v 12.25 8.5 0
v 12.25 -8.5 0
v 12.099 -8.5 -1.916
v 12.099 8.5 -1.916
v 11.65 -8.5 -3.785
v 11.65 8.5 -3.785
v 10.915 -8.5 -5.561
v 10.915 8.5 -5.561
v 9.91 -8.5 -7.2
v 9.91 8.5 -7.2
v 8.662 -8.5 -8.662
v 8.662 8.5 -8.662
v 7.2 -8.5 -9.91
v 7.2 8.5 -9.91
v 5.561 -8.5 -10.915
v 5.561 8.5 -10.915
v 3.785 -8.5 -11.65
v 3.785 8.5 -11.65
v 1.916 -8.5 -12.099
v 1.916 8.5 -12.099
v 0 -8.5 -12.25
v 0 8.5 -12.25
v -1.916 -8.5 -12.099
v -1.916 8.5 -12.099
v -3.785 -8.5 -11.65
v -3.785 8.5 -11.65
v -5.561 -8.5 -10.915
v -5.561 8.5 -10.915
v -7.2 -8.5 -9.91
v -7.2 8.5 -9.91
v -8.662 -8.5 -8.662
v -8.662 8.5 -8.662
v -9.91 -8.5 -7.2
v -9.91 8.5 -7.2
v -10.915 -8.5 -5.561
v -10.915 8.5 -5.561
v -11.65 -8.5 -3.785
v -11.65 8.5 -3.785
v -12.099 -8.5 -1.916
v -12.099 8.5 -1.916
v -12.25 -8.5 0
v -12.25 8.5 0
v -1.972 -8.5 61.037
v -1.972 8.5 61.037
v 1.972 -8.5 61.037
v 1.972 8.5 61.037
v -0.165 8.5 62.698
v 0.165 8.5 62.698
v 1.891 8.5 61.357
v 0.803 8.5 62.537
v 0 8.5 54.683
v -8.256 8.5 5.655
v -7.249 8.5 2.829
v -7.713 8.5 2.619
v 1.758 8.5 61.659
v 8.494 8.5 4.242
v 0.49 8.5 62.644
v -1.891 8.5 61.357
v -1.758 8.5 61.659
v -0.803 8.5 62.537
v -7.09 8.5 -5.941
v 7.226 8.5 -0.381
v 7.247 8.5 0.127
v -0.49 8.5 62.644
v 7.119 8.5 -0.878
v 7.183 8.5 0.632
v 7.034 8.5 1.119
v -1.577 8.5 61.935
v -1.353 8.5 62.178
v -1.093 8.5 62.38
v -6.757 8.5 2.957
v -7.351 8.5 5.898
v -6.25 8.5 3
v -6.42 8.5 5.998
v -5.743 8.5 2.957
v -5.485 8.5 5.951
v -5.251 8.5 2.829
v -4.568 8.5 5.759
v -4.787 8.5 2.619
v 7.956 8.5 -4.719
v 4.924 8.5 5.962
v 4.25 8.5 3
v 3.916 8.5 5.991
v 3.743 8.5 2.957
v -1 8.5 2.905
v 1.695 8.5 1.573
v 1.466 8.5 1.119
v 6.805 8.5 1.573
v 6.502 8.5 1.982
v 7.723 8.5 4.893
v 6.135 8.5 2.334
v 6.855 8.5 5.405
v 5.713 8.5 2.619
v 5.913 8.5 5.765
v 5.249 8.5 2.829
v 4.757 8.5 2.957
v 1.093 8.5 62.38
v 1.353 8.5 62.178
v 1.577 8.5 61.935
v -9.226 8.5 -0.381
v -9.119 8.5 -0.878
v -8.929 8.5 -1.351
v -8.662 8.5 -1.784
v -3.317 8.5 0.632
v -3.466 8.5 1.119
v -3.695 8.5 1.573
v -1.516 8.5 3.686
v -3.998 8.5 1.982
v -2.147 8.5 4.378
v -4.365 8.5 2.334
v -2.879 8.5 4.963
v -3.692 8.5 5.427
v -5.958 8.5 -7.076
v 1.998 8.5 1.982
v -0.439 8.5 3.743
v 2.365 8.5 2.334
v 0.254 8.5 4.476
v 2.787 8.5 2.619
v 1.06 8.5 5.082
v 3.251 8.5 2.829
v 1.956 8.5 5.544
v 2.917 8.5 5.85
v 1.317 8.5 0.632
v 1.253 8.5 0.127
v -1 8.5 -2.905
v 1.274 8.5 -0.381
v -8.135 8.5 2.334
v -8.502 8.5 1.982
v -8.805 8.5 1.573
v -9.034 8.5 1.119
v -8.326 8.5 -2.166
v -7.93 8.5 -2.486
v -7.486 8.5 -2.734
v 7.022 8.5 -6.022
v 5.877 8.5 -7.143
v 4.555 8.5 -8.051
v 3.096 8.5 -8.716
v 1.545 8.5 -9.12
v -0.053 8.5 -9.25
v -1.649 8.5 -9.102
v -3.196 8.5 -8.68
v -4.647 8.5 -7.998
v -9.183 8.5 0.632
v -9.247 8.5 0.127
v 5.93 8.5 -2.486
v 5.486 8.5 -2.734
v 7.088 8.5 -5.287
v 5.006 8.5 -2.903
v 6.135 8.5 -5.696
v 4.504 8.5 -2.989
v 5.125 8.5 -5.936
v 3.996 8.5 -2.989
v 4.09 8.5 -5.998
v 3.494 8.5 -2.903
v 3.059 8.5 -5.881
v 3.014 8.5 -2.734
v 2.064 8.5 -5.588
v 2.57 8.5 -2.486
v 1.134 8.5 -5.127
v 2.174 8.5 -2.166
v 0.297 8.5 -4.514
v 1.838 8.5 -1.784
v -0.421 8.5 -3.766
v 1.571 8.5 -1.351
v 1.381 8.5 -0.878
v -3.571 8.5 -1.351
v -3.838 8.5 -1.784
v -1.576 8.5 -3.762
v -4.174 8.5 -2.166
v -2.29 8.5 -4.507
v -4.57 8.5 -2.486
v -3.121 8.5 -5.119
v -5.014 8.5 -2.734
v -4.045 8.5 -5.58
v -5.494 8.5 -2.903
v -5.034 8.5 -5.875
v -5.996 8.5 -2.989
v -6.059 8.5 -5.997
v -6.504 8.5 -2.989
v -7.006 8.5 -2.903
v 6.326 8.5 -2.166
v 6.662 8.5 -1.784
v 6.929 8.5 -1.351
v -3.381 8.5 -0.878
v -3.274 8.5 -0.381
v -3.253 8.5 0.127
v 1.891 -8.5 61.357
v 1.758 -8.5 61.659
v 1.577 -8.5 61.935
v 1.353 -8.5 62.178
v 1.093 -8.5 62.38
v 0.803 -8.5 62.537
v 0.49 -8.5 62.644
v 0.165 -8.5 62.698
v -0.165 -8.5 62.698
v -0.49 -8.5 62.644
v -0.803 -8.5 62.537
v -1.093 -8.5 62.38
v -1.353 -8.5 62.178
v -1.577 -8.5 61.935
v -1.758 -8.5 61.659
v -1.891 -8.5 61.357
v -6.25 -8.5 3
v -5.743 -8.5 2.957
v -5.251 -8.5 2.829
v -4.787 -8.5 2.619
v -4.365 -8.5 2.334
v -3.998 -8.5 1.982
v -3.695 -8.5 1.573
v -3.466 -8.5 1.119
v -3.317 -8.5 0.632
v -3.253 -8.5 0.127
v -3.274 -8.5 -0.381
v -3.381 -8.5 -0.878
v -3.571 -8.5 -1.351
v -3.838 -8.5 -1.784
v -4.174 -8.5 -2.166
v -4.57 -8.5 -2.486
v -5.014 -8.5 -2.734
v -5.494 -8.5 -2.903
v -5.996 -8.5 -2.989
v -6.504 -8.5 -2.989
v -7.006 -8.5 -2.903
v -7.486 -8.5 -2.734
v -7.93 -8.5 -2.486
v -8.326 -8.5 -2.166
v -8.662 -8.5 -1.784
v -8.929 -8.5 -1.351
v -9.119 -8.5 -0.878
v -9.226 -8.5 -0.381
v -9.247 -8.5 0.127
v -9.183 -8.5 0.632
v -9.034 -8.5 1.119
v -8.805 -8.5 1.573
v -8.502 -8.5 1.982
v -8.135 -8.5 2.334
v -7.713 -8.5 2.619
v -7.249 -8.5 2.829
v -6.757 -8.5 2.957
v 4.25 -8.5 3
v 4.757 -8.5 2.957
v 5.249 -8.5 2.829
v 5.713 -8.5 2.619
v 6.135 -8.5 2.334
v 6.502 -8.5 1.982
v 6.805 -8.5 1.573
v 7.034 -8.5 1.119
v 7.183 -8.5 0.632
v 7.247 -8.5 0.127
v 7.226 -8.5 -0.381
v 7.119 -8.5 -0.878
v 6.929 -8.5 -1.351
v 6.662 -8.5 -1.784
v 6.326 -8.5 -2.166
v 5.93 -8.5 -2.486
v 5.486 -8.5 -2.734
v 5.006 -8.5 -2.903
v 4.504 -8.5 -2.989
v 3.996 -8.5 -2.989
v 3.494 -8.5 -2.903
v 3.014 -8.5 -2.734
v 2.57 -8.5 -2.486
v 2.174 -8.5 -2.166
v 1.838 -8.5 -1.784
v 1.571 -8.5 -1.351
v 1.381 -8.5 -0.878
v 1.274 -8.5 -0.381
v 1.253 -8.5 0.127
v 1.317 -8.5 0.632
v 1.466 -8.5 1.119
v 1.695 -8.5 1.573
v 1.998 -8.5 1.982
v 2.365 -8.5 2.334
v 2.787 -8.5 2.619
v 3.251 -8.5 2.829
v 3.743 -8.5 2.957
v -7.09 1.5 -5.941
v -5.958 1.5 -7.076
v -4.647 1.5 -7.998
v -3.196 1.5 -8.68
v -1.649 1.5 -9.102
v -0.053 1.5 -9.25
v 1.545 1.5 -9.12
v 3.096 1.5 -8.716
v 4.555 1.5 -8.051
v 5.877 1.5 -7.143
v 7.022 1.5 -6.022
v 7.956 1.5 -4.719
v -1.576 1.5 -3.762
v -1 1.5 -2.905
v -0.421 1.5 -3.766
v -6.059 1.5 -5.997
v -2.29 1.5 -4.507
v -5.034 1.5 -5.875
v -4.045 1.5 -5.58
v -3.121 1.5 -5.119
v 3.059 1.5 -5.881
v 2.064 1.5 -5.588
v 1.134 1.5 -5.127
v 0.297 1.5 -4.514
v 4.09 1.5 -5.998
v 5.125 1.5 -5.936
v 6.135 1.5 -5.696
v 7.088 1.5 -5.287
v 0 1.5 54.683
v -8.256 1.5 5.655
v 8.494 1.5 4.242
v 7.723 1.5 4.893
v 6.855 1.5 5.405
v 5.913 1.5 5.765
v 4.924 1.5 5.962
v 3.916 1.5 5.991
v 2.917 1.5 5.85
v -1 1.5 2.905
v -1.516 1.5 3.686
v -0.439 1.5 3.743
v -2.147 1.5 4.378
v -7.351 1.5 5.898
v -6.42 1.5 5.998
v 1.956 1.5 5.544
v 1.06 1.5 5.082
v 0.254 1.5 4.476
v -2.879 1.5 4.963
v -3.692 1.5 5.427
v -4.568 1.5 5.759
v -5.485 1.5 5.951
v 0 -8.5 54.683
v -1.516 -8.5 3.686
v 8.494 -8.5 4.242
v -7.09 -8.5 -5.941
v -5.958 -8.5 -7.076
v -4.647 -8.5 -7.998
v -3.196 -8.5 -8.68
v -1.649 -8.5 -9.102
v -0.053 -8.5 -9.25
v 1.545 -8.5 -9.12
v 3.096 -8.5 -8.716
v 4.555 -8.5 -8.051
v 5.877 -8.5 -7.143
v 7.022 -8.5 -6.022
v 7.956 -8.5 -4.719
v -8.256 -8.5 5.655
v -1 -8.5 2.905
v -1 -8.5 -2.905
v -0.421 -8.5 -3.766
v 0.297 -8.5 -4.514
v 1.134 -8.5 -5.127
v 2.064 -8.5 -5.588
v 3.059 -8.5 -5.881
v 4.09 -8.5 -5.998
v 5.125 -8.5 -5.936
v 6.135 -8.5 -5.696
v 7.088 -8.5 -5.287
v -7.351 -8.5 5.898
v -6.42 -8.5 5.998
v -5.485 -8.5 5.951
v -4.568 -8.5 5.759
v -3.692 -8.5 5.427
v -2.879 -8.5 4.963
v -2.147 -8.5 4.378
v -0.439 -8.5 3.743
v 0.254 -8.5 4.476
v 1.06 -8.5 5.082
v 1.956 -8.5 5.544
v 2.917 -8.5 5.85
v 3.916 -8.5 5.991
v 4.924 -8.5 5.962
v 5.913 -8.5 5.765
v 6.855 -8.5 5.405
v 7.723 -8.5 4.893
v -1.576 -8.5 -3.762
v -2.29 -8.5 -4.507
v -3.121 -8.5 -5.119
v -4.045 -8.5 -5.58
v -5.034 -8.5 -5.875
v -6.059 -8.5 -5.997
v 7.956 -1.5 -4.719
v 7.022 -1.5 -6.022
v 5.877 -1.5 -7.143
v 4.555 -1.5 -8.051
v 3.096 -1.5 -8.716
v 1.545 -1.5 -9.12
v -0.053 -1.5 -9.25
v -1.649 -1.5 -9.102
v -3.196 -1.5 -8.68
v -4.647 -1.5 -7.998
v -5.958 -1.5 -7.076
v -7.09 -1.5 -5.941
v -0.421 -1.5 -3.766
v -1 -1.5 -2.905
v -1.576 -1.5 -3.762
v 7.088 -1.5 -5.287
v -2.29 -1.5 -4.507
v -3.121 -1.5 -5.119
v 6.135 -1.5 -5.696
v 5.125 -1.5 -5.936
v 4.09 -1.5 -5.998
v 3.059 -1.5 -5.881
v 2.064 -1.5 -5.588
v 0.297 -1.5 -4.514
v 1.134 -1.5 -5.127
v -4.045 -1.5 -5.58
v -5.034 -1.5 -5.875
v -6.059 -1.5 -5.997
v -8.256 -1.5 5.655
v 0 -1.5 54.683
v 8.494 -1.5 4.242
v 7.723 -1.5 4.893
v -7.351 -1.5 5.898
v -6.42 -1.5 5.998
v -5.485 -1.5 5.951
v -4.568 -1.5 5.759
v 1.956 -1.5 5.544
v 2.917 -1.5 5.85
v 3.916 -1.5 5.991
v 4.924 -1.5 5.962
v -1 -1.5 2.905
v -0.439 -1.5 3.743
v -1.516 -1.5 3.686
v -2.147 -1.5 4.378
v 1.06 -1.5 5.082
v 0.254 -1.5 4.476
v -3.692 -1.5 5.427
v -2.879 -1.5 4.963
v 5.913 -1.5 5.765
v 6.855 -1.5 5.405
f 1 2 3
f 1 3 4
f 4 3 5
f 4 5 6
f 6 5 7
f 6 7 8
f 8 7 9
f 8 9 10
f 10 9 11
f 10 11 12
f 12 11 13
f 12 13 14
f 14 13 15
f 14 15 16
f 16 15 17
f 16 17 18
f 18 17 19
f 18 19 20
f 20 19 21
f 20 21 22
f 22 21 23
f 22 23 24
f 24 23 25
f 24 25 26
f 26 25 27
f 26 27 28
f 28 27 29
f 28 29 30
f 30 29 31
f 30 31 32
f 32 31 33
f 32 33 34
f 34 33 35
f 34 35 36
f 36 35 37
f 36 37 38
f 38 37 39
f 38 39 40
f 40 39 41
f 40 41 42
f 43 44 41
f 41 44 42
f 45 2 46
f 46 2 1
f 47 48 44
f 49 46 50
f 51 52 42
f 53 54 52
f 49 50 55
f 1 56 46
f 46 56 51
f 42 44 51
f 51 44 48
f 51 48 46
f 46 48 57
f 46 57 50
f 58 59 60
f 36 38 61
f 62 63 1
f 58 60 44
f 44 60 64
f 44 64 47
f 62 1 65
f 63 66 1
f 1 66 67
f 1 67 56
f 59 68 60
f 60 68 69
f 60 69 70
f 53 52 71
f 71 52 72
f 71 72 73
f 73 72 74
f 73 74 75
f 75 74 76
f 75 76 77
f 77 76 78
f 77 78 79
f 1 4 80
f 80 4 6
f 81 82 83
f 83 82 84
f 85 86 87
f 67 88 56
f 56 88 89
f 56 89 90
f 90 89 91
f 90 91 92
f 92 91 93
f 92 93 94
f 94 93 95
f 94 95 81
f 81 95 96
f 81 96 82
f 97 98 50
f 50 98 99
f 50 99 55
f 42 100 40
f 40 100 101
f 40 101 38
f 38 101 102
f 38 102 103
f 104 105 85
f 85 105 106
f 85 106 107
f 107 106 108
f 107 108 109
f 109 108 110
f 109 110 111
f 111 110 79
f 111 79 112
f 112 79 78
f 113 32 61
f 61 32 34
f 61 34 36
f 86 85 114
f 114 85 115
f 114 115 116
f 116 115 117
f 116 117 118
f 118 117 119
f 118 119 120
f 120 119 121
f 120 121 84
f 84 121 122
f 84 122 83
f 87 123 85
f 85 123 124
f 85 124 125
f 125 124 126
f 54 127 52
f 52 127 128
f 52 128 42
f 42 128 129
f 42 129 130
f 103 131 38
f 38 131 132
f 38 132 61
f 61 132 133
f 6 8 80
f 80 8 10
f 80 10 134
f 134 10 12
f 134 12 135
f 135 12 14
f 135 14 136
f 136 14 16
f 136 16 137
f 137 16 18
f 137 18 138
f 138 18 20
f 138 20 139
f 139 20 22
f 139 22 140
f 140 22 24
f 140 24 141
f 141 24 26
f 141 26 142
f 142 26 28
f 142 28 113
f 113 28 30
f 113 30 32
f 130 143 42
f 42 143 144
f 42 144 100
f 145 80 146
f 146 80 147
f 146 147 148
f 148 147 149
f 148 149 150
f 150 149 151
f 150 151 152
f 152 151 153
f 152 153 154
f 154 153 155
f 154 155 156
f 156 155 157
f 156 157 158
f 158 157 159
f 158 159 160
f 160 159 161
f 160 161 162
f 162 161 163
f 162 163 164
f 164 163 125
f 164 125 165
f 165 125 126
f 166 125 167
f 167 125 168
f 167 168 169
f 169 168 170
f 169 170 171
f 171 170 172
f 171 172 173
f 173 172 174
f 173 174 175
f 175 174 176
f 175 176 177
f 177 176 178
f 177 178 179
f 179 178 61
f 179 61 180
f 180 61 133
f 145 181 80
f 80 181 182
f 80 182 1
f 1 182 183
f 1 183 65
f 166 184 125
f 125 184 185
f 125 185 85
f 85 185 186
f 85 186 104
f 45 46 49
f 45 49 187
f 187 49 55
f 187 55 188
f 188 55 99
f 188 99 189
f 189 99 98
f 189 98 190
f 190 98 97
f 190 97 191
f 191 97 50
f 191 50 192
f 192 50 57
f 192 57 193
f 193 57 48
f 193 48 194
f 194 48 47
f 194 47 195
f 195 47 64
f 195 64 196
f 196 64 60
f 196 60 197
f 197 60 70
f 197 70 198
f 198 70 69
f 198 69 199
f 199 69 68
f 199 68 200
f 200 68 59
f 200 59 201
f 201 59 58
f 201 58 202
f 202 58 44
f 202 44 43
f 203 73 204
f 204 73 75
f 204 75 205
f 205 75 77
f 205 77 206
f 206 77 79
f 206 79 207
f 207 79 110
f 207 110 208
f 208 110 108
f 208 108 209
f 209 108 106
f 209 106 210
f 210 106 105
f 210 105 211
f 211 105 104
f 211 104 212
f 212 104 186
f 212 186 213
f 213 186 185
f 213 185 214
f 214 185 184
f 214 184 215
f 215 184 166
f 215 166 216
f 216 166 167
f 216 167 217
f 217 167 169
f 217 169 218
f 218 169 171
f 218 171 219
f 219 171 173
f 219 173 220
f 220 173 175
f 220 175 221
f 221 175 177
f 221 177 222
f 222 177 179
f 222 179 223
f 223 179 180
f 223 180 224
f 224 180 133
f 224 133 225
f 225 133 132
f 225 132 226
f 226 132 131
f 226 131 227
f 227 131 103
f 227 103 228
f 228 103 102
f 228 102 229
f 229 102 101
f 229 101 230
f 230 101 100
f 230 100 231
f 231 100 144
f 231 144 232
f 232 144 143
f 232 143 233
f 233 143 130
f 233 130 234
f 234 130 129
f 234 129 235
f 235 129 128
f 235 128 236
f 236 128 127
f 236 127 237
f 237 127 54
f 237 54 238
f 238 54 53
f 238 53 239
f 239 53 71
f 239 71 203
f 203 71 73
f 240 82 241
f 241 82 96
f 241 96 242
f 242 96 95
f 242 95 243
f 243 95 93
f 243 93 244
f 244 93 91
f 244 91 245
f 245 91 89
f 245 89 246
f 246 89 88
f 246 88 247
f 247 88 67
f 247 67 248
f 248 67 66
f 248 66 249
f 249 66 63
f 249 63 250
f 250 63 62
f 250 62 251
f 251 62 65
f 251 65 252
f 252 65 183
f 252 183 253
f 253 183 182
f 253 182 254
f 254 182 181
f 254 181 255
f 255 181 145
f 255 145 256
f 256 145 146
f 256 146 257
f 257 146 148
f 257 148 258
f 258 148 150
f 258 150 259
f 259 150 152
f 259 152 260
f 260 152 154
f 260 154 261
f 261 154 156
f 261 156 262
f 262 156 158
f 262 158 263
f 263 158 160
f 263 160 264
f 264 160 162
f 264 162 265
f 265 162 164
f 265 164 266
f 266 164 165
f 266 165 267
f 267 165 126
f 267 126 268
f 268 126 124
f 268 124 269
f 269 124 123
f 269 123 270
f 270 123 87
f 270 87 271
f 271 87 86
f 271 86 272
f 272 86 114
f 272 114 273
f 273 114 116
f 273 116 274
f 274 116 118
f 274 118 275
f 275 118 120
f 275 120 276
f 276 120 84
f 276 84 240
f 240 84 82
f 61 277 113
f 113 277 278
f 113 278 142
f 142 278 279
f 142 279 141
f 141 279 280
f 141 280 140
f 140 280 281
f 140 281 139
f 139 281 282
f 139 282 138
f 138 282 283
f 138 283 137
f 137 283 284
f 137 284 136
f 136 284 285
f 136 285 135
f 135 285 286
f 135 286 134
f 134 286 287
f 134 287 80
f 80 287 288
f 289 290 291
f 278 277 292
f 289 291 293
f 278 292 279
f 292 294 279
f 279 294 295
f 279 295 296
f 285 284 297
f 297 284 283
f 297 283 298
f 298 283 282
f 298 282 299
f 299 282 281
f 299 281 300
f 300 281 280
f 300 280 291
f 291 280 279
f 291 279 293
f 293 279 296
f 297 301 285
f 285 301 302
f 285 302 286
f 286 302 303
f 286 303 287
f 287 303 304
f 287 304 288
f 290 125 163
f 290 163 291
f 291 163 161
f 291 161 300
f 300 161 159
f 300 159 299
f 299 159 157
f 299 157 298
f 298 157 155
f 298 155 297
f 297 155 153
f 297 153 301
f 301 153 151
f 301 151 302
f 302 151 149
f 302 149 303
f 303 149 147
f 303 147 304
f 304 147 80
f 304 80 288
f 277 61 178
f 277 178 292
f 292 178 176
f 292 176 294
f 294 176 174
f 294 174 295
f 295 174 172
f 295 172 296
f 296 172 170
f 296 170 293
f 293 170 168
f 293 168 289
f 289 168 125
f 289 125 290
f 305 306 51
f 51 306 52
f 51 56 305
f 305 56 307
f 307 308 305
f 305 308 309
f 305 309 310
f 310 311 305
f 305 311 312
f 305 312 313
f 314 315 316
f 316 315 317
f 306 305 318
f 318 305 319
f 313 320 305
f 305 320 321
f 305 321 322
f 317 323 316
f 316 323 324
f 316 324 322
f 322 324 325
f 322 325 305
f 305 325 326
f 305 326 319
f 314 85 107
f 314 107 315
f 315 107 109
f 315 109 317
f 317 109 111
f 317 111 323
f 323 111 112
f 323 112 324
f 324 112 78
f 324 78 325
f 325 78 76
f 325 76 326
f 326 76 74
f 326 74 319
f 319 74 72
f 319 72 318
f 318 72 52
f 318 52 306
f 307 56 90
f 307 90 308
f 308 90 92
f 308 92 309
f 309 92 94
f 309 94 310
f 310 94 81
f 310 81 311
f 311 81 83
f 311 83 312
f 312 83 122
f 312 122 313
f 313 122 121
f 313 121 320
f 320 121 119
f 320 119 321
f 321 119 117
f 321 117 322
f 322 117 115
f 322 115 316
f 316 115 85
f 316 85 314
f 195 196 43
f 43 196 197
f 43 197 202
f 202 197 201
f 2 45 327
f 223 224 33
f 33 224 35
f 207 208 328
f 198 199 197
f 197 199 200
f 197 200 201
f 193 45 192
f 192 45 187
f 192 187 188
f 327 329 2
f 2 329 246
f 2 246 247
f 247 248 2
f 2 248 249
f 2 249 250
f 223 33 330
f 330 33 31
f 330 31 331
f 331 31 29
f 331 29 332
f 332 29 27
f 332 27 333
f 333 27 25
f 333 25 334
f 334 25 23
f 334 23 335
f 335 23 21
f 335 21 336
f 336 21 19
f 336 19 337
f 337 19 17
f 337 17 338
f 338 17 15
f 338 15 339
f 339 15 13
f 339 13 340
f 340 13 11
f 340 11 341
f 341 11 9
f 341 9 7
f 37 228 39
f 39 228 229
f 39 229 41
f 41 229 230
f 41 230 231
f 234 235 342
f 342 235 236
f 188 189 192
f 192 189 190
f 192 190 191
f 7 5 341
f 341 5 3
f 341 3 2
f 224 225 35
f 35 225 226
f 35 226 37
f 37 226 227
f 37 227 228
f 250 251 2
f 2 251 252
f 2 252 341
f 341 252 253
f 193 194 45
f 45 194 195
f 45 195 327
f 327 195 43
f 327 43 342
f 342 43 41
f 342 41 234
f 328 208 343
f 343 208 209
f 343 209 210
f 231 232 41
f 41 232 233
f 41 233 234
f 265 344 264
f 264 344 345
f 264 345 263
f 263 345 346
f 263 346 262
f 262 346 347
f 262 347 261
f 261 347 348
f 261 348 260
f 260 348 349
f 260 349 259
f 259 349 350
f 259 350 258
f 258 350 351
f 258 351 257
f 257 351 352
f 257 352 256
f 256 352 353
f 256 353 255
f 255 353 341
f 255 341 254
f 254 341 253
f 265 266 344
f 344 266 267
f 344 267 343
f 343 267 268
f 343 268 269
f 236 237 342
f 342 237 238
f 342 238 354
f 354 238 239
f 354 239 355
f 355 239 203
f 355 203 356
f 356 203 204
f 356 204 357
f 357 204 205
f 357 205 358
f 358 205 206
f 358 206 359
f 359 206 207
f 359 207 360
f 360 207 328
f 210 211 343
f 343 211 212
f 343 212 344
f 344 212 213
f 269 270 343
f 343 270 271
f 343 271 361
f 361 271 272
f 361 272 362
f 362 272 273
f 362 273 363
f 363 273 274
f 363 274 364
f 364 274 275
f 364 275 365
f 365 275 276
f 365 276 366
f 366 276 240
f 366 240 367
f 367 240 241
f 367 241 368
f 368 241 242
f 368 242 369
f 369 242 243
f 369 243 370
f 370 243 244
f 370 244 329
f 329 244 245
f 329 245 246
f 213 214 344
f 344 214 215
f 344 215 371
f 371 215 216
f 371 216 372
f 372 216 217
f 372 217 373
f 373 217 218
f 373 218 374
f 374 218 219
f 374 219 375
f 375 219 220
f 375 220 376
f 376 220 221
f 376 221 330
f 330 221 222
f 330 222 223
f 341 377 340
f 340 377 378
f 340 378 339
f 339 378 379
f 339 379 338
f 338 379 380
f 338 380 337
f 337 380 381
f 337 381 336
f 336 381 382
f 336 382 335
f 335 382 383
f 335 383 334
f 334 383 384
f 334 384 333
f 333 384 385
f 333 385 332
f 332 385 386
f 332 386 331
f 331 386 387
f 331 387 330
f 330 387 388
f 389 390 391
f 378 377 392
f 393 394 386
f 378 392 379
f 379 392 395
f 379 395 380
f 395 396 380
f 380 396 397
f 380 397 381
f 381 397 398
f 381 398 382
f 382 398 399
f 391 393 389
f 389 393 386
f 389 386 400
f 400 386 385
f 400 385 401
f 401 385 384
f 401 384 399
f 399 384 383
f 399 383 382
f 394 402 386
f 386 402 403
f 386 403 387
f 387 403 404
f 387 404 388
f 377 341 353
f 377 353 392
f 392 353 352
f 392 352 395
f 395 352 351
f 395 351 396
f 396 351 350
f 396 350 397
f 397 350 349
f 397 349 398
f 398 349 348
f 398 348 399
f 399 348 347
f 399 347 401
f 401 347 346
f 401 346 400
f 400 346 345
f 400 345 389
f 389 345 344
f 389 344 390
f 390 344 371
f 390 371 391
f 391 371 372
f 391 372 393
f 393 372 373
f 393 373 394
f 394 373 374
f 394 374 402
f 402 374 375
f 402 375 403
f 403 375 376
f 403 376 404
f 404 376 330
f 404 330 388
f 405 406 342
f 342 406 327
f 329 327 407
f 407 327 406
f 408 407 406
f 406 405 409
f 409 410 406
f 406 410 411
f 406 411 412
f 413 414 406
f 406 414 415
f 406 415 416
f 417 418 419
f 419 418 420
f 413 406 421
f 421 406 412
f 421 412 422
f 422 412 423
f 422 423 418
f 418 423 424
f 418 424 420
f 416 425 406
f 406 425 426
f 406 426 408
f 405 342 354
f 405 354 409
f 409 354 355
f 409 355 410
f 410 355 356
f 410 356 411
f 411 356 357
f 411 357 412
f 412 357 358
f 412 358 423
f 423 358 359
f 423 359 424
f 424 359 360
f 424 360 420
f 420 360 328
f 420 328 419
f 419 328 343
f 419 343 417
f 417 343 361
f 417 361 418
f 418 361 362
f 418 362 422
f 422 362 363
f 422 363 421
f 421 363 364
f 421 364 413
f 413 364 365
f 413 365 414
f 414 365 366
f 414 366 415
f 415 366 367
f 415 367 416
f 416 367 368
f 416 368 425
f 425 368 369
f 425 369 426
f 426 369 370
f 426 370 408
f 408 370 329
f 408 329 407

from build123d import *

# Parameters (mm, degrees)
BOSS_EXTRU_1_DEPTH      = 8.5
CONG_2_R                = 2
ESQUISSE2_R             = 3
ENL_V_MAT_EXTRU_1_DEPTH = 65.453547263
COQUE3_START            = 1.5
COQUE3_DEPTH            = 7


# Read off the part's stored shape, not the designer's step: Coque3
with BuildPart() as part:
    # Esquisse1 → Boss.-Extru.1 (new body)
    with BuildSketch(Plane(origin=(0, 0, 0), x_dir=(1, 0, 0), z_dir=(0, 1, 0))):
        with BuildLine():
            Line((-12.25, 0), (0, -72.75))
            Line((0, -72.75), (12.25, 0))
            ThreePointArc((12.25, 0), (0, 12.25), (-12.25, 0))
        make_face()
    extrude(amount=BOSS_EXTRU_1_DEPTH)

    # Congé2
    cong_2_edges = [part.edges().sort_by_distance(p)[0] for p in [
        (0, 4.25, 72.75),
    ]]
    fillet(cong_2_edges, radius=CONG_2_R)

    # Esquisse2 → Enlèv. mat.-Extru.1 (cut, through all)
    with BuildSketch(Plane(origin=(0, 8.5, 0), x_dir=(1, 0, 0), z_dir=(0, 1, 0))):
        with Locations(Location((-6.25, 0, 0), (0, 0, 270))):
            Circle(ESQUISSE2_R)
        with Locations(Location((4.25, 0, 0), (0, 0, 270))):
            Circle(ESQUISSE2_R)
    extrude(amount=-ENL_V_MAT_EXTRU_1_DEPTH, mode=Mode.SUBTRACT)

    # Coque3 outline → Coque3 (cut)
    with BuildSketch(Plane(origin=(0, 0, 0), x_dir=(1, 0, 0), z_dir=(0, 1, 0)).offset(COQUE3_START)):
        with BuildLine():
            ThreePointArc((7.955882353, 4.718732455), (0.74891051, 9.219633021), (-7.09, 5.940909021))
            ThreePointArc((-7.09, 5.940909021), (-3.572947636, 5.369673234), (-1, 2.90473751))
            ThreePointArc((-1, 2.90473751), (3.058899986, 5.880585069), (7.955882353, 4.718732455))
        make_face()
        with BuildLine():
            ThreePointArc((8.493518341, -4.241762852), (3.413244048, -5.941366802), (-1, -2.90473751))
            ThreePointArc((-1, -2.90473751), (-4.123405548, -5.610489821), (-8.255570494, -5.654881696))
            Line((-8.255570494, -5.654881696), (0, -54.68286157))
            Line((0, -54.68286157), (8.493518341, -4.241762852))
        make_face()
    extrude(amount=COQUE3_DEPTH, mode=Mode.SUBTRACT)

    # Symétrie3: part across plane


with BuildPart() as part_1:
    add(part.part)
    add(part.part.mirror(Plane(origin=(0, 0, 0), x_dir=(0, 0, 1), z_dir=(0, -1, 0))))


solid = part_1.part
